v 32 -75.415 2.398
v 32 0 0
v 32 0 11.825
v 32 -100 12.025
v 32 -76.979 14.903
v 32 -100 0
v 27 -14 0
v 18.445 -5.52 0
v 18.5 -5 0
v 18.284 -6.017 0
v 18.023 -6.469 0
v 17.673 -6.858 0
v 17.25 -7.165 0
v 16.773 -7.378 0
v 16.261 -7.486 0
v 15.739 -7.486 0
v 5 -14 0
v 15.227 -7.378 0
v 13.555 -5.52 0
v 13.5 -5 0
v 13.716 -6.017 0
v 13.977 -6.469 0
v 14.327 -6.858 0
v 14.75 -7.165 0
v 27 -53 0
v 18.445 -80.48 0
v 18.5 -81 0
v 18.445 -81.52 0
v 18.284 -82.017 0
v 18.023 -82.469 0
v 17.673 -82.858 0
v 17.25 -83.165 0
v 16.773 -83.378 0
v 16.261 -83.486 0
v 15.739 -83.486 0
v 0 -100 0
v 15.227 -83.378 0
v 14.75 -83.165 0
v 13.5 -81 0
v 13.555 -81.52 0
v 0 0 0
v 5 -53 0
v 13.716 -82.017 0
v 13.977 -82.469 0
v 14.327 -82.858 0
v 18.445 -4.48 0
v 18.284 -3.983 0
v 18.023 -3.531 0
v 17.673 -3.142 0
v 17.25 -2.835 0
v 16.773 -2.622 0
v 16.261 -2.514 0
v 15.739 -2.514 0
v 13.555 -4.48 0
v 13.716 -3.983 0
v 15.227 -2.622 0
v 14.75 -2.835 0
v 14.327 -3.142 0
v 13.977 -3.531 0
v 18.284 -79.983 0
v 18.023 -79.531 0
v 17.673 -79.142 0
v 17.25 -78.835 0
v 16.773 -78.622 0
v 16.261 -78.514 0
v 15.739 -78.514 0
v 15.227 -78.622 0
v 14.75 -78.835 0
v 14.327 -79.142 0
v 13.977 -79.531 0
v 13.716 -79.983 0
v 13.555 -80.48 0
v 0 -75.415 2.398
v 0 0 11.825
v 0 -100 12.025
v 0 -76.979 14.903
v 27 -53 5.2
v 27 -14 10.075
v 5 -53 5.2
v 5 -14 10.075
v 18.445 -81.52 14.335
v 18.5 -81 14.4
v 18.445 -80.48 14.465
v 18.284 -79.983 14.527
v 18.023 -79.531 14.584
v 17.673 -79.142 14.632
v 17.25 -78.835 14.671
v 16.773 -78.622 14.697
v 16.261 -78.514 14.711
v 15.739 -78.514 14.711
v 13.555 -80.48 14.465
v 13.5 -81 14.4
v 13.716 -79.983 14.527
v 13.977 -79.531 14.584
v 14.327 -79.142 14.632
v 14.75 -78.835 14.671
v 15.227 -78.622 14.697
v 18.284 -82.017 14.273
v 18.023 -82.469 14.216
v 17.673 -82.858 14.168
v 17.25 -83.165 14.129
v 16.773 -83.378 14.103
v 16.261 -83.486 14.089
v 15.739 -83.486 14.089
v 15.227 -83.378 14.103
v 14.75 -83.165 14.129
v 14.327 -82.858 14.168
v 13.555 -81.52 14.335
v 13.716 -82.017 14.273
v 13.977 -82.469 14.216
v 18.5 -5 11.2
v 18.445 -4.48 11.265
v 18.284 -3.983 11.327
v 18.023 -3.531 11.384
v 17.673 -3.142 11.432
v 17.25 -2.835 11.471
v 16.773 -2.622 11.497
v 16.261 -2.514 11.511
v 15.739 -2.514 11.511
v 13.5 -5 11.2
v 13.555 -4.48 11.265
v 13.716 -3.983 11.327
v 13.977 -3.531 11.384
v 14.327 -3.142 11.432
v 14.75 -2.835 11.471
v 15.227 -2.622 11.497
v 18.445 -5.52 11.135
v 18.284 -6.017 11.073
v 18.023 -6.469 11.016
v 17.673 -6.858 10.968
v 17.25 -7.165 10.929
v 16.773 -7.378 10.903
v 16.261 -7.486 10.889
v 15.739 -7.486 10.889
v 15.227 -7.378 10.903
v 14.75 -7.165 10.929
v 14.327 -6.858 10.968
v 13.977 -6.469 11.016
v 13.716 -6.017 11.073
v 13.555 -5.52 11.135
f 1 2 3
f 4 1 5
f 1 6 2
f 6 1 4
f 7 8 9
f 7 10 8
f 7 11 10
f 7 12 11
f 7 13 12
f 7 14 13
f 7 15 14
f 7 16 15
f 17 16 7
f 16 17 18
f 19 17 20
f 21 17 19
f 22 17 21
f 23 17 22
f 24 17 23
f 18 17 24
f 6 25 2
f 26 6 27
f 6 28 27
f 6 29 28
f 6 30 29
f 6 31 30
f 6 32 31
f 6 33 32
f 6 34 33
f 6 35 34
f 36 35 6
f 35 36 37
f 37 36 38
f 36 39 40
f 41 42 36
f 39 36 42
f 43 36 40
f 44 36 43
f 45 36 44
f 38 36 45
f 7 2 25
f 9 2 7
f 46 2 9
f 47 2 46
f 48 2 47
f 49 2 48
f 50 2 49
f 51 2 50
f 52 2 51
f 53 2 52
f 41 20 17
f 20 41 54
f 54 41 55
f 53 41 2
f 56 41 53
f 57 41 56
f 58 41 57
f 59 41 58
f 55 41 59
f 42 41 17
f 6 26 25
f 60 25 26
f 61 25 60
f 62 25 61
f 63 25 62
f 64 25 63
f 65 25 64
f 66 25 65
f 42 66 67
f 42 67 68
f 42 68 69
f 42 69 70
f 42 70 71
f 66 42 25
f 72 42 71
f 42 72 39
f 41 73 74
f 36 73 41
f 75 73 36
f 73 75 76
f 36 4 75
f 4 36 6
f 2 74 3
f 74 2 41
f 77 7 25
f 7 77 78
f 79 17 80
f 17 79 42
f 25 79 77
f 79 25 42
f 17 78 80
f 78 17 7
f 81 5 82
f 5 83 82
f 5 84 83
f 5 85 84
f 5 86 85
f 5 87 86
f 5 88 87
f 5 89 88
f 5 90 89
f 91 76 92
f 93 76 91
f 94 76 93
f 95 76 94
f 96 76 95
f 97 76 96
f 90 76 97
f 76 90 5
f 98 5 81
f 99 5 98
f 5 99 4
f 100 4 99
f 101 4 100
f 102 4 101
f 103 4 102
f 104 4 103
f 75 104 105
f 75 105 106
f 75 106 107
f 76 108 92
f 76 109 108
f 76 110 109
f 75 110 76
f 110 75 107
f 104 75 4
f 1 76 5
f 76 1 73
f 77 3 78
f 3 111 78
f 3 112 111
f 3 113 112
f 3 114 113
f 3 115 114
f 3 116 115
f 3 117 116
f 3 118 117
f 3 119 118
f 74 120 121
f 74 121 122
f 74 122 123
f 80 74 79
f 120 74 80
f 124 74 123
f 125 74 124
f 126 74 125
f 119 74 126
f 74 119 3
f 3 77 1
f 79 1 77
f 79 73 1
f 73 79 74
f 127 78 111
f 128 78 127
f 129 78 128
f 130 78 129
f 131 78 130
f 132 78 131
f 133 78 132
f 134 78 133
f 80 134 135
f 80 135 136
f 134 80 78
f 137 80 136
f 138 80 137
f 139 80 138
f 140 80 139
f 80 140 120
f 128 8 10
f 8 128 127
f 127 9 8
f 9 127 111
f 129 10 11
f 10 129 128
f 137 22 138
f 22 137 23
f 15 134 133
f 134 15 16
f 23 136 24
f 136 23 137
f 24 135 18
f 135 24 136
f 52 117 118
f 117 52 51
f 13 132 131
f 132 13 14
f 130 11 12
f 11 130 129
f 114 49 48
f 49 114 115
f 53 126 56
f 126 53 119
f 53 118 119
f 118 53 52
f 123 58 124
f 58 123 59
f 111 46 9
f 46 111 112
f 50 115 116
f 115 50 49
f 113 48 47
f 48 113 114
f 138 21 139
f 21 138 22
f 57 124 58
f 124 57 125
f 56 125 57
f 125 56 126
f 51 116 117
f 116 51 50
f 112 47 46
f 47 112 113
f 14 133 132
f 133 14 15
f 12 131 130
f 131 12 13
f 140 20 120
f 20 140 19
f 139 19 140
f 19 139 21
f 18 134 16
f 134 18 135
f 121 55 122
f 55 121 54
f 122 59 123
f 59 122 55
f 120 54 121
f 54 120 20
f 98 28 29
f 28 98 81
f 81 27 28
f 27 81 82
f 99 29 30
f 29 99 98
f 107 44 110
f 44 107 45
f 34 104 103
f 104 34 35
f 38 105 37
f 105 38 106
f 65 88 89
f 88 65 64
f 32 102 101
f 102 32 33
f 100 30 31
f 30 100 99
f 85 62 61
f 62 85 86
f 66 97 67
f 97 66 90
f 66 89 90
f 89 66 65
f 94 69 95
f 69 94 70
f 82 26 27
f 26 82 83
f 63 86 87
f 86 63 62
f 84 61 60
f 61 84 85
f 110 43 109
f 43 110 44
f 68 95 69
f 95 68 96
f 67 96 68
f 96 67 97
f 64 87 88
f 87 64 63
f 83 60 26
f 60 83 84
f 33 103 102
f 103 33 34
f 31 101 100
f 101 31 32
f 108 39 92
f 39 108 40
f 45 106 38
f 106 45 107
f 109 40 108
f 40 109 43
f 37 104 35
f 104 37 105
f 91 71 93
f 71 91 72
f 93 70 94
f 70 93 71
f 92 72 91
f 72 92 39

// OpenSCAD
overcut=1;
depth=15;
width=32;
hole_diameter=5;
$fn=30;

rotate([180,0,0])
    translate([0,0,-depth])
    difference() {
        cube([width,100,depth]);
        translate([5,14,-overcut])
            cube([22, 39, depth + 2*overcut]);
        translate([0,3*25.4,0])
            rotate([atan(0.5/4),0,0])
            translate([-overcut, 0, -depth*2])
            cube([width + 2*overcut, 25.4*4, 2*depth]);
        translate([0,-1*25.4,0])
            rotate([atan(0.5/4),0,0])
            translate([-overcut, 0, -depth*2])
            cube([width + 2*overcut, 25.4*4, 2*depth]);
        translate([width/2, 5,-overcut])
            cylinder(d=hole_diameter, h=depth+2*overcut);
        translate([width/2, 81,-overcut])
            cylinder(d=hole_diameter, h=depth+2*overcut);
    }
